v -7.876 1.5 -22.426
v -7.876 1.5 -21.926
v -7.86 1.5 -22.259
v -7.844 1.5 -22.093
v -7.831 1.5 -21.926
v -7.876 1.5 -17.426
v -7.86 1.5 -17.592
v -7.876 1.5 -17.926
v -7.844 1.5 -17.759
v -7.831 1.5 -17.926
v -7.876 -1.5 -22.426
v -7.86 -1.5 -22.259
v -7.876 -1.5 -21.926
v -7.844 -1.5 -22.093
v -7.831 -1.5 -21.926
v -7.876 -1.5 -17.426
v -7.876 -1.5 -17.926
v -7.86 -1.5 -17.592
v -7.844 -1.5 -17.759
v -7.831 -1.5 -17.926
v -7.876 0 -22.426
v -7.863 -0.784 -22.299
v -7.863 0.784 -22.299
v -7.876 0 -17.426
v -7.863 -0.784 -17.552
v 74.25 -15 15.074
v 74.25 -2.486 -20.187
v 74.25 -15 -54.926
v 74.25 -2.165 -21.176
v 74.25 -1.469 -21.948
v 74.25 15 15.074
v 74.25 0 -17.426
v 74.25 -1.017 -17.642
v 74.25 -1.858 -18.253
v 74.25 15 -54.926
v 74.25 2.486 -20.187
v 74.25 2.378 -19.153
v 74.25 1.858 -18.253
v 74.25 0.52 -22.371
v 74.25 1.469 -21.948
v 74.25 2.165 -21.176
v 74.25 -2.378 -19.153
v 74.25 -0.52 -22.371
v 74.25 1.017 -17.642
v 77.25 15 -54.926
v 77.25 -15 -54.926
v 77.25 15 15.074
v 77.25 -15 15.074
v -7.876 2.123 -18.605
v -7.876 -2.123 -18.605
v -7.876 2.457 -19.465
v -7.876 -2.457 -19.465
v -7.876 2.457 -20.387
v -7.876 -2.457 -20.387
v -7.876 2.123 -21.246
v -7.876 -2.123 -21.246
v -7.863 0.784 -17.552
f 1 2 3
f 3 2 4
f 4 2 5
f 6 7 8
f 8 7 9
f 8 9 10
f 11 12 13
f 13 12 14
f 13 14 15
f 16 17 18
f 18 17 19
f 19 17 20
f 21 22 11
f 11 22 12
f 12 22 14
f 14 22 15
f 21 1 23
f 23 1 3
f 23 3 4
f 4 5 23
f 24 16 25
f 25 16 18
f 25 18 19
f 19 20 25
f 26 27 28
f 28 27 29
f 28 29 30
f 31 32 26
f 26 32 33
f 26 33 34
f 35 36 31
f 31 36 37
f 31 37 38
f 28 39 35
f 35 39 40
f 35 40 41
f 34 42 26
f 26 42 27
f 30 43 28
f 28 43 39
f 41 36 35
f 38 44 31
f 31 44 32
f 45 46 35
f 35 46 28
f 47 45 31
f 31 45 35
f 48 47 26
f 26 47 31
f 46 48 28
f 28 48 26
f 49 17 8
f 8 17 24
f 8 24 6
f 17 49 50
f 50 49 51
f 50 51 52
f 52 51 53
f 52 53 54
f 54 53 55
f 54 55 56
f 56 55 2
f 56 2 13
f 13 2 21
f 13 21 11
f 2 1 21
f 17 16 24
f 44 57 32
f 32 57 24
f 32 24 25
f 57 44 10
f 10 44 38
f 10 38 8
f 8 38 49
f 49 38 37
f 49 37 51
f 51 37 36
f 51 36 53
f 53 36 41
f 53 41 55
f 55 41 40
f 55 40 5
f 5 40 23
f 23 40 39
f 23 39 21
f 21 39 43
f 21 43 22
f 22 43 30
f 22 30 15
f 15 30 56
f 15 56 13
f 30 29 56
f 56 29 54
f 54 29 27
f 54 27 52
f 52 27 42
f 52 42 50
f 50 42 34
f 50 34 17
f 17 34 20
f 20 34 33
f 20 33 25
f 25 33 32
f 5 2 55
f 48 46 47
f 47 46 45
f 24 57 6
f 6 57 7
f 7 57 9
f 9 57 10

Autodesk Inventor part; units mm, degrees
ref_plane "YZ Plane" through (0, 0, 0) normal (1, 0, 0) x (0, 1, 0)
ref_plane "XZ Plane" through (0, 0, 0) normal (0, 1, 0) x (-1, 0, 0)
ref_plane "XY Plane" through (0, 0, 0) normal (0, 0, 1) x (1, 0, 0)
sketch "Skizze1" plane through (0, 0, 0) normal (0, 1, 0) x (-1, 0, 0)
  circle A0 centre (32.7504, -19.9257) radius 25
  line L0 (32.7504, -19.9257) -> (-77.2496, -19.9257)
  line L1 (-77.2496, -19.9257) -> (-77.2496, -22.4257)
  line L2 (-77.2496, -22.4257) -> (7.8757, -22.4257)
  line L3 (7.8757, -22.4257) -> (7.8757, -19.9257)
  point P0 (0, 0)
  dimension "d4" = 50
  dimension "d9" = 110
  dimension "d10" = 2.5
extrude "Extrusion1" add sketch "Skizze1" along normal blind 1.5 and the other way blind 1.5 contours L3 L0 A0 | A0 L0 L3
revolve "Umdrehung1" add sketch "Skizze1" angle 360 about axis through (-32.7504, 0, -19.9257) along (1, 0, 0) picked at (7.8525, -21.3151) contours L2 L1 L0 A0 | A0 L0 L3
sketch "Skizze2" plane through (77.2496, 0, -19.9257) normal (1, 0, 0) x (0, 0, -1)
  line L0 (35, -15) -> (-35, -15)
  line L1 (-35, -15) -> (-35, 15)
  line L2 (-35, 15) -> (35, 15)
  line L3 (35, 15) -> (35, -15)
  line L4 (-25, -1.5) -> (25, 1.5)
  line L5 (35, -15) -> (-35, 15) construction
  line L6 (-35, -15) -> (35, 15) construction
  circle A0 centre (0, 0) radius 2.5 projected
  point P0 (-19.9257, 0)
  point P1 (0, 0)
  point P2 (-3.75, 0)
  point P3 (3.75, 0)
  point P4 (-25, -1.5)
  point P5 (25, 1.5)
  dimension "d14" = 70
  dimension "d15" = 30
  dimension "d22" = 15
extrude "Extrusion2" add sketch "Skizze2" against normal blind 3 contours L0 L1 L2 L3 | A0 L4 | L4 A0
sketch "Skizze3" plane through (0, 1.5, 0) normal (0, 1, 0) x (1, 0, 0)
  line L0 (-7.8305, 17.9257) -> (-7.8757, 17.9257) projected
  line L1 (-7.8757, 17.9257) -> (-59.898, 17.9257)
  line L2 (-59.898, 17.9257) -> (-59.898, 68.635)
  line L3 (-59.898, 68.635) -> (-7.8757, 68.635)
  line L4 (-7.8757, 68.635) -> (-7.8757, 17.9257)
  line L5 (-7.8757, 17.9257) -> (-59.898, 17.9257)
  line L6 (-59.898, 17.9257) -> (-59.898, -26.6959)
  line L7 (-59.898, -26.6959) -> (-7.8757, -26.6959)
  line L8 (-7.8757, -26.6959) -> (-7.8757, 17.9257)
  point P0 (0, 0)
extrude "Extrusion3" cut sketch "Skizze3" against normal blind 10
properties part number "Kreisverkehrsschild_Teil_Unten"
